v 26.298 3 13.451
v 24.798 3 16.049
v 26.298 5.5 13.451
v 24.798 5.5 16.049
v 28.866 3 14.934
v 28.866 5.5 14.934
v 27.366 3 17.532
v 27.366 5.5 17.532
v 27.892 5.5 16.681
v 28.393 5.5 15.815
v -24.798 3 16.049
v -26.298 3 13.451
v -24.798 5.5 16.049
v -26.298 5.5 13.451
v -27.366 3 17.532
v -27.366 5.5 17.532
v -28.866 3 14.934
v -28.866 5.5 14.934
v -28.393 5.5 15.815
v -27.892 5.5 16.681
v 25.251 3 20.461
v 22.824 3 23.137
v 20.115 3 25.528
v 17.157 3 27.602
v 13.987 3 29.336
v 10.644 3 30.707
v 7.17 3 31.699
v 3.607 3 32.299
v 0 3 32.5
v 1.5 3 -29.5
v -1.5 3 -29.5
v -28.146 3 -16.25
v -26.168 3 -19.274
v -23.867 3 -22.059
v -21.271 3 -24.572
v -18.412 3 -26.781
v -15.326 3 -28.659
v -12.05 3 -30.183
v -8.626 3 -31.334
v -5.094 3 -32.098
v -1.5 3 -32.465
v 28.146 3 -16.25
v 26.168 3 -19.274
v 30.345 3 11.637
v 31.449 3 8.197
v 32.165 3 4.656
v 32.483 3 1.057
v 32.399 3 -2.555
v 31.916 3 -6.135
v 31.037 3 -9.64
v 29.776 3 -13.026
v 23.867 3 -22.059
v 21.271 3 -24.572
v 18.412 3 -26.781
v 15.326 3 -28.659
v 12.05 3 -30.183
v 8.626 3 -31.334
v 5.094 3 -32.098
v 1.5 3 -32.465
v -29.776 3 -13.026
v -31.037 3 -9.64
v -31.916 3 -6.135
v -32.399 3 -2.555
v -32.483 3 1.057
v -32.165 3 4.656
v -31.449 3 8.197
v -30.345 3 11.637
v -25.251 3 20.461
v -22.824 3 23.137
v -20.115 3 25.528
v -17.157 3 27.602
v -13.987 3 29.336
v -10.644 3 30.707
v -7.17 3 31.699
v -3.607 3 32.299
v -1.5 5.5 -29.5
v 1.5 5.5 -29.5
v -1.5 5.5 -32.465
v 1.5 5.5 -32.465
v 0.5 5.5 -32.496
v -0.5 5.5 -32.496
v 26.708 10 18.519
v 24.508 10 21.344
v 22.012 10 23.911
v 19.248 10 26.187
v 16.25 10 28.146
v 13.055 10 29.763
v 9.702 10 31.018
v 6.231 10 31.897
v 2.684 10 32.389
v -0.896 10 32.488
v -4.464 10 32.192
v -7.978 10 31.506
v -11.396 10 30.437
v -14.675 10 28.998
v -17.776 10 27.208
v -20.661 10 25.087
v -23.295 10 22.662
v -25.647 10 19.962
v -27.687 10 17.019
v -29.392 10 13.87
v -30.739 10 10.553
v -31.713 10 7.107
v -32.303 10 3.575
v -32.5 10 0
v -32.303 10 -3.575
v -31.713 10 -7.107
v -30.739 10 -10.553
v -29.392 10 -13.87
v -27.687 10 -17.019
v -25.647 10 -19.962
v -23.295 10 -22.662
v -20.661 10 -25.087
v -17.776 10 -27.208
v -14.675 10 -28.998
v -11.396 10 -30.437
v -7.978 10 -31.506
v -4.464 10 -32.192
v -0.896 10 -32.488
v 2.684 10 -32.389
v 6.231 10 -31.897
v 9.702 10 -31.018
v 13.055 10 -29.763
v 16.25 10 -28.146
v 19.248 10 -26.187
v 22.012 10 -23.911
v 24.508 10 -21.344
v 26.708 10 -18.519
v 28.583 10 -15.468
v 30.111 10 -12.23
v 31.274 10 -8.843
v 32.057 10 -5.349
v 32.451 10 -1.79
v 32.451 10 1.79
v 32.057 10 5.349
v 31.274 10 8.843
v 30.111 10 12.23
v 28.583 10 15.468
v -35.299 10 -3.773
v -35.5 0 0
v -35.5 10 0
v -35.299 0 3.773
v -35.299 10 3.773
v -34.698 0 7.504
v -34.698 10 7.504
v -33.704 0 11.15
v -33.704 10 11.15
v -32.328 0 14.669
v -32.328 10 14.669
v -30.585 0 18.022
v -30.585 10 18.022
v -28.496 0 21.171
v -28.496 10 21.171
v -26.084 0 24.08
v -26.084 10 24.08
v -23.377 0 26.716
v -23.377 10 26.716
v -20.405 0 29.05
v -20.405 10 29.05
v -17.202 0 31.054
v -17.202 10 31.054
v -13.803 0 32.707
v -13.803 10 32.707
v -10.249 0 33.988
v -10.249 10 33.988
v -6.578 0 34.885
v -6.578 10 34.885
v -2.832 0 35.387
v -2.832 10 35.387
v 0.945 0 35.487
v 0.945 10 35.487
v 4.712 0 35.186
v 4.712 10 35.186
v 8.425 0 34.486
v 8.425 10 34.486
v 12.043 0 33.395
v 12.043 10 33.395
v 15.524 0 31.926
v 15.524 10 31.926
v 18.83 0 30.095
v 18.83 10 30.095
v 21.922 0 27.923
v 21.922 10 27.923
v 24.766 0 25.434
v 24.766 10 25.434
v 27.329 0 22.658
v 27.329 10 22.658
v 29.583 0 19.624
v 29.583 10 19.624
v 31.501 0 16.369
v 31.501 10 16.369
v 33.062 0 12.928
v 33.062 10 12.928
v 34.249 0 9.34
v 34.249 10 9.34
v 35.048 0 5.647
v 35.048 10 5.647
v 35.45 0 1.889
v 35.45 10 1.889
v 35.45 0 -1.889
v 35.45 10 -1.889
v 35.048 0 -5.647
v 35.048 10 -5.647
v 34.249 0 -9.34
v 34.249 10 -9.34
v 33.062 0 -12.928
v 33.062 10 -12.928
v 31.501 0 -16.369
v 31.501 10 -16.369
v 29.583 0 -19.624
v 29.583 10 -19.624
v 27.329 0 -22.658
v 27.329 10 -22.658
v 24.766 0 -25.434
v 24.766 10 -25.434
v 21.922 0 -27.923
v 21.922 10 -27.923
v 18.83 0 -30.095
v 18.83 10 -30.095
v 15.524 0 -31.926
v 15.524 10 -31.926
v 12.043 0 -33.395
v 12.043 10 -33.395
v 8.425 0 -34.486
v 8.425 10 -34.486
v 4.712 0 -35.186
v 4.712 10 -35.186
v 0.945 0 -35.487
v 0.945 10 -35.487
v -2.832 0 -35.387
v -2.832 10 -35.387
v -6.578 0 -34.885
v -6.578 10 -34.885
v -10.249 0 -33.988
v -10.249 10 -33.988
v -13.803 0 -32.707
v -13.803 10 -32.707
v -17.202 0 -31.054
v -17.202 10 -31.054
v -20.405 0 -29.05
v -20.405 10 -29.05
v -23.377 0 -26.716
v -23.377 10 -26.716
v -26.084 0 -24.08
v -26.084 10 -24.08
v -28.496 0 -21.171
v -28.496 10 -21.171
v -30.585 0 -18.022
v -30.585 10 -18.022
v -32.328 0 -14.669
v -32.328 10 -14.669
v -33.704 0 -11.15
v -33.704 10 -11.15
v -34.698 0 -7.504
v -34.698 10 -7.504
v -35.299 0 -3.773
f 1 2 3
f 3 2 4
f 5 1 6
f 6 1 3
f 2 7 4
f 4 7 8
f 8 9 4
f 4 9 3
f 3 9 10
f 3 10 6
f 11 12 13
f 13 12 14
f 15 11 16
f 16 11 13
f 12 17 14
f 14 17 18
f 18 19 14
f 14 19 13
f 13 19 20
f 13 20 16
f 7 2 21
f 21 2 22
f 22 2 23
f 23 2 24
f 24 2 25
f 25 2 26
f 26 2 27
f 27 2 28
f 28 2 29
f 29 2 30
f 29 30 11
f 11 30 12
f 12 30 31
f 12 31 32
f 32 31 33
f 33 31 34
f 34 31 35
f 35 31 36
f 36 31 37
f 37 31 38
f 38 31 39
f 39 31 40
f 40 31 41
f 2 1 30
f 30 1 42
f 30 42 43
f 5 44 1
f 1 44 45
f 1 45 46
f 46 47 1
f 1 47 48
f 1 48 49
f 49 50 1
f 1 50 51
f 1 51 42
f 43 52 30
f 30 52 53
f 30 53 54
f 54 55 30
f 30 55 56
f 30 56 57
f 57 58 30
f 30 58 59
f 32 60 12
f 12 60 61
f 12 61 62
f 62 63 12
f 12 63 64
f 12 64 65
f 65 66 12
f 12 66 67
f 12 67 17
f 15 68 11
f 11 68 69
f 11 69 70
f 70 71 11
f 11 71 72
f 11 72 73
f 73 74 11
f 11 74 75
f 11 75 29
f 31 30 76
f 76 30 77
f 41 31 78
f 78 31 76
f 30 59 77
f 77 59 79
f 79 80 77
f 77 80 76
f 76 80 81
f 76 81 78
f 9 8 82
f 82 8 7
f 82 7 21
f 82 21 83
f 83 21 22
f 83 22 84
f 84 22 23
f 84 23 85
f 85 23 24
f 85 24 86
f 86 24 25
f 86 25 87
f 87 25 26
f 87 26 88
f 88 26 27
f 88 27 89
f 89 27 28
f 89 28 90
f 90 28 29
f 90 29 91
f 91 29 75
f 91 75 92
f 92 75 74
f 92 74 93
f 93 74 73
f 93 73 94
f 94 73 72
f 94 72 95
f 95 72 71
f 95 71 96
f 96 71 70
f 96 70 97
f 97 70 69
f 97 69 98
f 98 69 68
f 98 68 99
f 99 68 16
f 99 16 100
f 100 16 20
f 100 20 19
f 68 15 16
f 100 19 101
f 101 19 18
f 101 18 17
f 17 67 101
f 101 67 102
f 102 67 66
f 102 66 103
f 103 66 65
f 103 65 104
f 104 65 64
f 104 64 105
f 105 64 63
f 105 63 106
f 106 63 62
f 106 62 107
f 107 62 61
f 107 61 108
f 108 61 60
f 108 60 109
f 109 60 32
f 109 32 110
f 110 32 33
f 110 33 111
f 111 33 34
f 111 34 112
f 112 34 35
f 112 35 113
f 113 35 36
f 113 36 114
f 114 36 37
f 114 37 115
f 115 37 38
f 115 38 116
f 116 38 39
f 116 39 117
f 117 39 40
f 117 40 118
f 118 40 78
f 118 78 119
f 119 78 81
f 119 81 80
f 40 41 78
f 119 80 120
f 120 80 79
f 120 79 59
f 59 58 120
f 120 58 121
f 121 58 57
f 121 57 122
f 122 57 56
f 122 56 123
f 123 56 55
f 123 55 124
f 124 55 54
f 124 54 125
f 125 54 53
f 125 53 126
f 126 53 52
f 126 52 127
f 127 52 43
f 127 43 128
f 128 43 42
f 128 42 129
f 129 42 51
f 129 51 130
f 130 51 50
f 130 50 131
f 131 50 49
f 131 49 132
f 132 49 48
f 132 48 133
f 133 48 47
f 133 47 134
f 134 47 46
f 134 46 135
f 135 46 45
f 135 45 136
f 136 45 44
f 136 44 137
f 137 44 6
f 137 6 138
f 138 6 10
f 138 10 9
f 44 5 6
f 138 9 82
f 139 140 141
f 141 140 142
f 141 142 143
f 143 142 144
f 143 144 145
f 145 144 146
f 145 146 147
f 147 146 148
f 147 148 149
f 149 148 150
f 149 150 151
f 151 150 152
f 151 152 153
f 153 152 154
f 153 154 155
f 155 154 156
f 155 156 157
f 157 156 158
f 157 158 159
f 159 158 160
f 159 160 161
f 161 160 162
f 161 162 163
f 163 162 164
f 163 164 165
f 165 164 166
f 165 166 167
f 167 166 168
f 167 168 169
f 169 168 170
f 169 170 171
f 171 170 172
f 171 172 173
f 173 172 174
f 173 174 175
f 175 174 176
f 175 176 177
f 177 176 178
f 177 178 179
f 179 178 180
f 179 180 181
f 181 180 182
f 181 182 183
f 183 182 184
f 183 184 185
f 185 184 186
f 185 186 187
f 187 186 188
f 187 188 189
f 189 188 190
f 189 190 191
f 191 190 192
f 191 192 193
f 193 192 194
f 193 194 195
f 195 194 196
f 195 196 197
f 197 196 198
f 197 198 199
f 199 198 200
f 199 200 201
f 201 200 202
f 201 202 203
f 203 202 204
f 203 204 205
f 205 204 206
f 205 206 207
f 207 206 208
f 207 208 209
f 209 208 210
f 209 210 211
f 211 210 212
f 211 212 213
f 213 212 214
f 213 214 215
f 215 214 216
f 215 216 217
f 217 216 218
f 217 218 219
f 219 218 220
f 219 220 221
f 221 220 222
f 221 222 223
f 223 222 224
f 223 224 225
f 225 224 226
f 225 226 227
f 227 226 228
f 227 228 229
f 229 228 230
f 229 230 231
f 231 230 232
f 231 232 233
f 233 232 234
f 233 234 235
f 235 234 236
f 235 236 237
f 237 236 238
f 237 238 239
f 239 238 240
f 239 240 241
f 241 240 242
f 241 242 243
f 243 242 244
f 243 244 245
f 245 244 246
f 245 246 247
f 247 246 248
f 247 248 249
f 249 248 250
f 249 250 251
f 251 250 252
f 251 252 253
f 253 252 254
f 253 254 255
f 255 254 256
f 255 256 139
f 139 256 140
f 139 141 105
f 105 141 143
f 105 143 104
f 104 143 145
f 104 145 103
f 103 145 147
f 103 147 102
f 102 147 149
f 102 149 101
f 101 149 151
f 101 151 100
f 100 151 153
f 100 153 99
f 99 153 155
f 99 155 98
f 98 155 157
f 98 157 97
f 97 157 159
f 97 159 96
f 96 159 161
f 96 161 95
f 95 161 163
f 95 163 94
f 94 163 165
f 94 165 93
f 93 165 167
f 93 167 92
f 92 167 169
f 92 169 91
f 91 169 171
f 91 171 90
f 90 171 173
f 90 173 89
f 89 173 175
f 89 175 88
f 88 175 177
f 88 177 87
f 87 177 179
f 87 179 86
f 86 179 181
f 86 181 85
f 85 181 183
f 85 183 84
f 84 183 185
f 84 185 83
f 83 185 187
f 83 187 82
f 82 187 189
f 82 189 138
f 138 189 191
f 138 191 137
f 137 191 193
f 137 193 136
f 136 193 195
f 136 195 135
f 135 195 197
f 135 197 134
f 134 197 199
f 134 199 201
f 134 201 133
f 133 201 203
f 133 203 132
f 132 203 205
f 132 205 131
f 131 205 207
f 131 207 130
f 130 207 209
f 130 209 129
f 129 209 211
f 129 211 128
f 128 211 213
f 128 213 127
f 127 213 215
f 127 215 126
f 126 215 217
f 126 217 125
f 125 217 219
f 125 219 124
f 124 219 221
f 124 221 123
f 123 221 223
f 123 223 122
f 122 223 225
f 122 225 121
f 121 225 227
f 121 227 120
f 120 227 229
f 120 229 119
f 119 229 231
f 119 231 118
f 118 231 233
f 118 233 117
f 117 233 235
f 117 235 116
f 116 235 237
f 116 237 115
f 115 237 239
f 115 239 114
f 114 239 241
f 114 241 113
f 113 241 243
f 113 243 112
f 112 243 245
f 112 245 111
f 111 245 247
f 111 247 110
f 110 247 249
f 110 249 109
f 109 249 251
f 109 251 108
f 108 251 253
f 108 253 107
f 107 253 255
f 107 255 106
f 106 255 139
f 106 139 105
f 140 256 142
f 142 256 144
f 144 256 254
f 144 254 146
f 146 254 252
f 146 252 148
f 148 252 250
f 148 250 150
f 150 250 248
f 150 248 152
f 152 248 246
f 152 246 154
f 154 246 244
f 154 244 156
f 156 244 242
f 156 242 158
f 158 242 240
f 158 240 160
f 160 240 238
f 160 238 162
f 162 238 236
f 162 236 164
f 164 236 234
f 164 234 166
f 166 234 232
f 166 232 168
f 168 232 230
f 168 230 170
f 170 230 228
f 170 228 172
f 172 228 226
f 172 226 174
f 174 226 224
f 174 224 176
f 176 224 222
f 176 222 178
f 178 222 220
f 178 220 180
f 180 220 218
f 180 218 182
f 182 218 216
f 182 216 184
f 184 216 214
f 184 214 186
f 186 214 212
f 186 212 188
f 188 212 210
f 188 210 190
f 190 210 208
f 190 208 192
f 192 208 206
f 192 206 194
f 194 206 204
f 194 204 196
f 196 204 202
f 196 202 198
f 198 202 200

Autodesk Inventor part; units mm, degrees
ref_plane "YZ Plane" through (0, 0, 0) normal (1, 0, 0) x (0, 1, 0)
ref_plane "XZ Plane" through (0, 0, 0) normal (0, 1, 0) x (-1, 0, 0)
ref_plane "XY Plane" through (0, 0, 0) normal (0, 0, 1) x (1, 0, 0)
sketch "Sketch1" plane through (0, 0, 0) normal (0, 1, 0) x (-1, 0, 0)
  circle A0 centre (0, 0) radius 32.5
  circle A1 centre (0, 0) radius 35.5
  dimension "d0" = 65
  dimension "d1" = 71
extrude "Extrusion1" add sketch "Sketch1" along normal blind 10
extrude "Extrusion2" add sketch "Sketch1" along normal blind 3 contours A0
sketch "Sketch2" plane through (0, 3, 0) normal (0, 1, 0) x (1, 0, 0)
  circle A0 centre (0, 0) radius 32.5 projected
  line L0 (0, 32.5) -> (0, 29.5)
  line L1 (-1.5, 29.5) -> (-1.5, 32.5)
  line L2 (-1.5, 32.5) -> (1.5, 32.5)
  line L3 (1.5, 32.5) -> (1.5, 29.5)
  line L4 (1.5, 29.5) -> (-1.5, 29.5)
  line L5 (-1.5, 29.5) -> (1.5, 32.5) construction
  line L6 (-1.5, 32.5) -> (1.5, 29.5) construction
  point P0 (0, 31)
  point P1 (1.5, 32.4654)
  point P2 (-1.5, 32.4654)
  dimension "d7" = 3
  dimension "d8" = 3
extrude "Extrusion3" add sketch "Sketch2" along normal blind 2.5 contours L3 L4 L0 A0 | A0 L0 L4 L1
pattern_circular "Circular Pattern1" count 3 over 360 about axis through (0, -10, 0) along (0, 1, 0) of "Extrusion3"
properties part number "Orchid Coaster V1"
